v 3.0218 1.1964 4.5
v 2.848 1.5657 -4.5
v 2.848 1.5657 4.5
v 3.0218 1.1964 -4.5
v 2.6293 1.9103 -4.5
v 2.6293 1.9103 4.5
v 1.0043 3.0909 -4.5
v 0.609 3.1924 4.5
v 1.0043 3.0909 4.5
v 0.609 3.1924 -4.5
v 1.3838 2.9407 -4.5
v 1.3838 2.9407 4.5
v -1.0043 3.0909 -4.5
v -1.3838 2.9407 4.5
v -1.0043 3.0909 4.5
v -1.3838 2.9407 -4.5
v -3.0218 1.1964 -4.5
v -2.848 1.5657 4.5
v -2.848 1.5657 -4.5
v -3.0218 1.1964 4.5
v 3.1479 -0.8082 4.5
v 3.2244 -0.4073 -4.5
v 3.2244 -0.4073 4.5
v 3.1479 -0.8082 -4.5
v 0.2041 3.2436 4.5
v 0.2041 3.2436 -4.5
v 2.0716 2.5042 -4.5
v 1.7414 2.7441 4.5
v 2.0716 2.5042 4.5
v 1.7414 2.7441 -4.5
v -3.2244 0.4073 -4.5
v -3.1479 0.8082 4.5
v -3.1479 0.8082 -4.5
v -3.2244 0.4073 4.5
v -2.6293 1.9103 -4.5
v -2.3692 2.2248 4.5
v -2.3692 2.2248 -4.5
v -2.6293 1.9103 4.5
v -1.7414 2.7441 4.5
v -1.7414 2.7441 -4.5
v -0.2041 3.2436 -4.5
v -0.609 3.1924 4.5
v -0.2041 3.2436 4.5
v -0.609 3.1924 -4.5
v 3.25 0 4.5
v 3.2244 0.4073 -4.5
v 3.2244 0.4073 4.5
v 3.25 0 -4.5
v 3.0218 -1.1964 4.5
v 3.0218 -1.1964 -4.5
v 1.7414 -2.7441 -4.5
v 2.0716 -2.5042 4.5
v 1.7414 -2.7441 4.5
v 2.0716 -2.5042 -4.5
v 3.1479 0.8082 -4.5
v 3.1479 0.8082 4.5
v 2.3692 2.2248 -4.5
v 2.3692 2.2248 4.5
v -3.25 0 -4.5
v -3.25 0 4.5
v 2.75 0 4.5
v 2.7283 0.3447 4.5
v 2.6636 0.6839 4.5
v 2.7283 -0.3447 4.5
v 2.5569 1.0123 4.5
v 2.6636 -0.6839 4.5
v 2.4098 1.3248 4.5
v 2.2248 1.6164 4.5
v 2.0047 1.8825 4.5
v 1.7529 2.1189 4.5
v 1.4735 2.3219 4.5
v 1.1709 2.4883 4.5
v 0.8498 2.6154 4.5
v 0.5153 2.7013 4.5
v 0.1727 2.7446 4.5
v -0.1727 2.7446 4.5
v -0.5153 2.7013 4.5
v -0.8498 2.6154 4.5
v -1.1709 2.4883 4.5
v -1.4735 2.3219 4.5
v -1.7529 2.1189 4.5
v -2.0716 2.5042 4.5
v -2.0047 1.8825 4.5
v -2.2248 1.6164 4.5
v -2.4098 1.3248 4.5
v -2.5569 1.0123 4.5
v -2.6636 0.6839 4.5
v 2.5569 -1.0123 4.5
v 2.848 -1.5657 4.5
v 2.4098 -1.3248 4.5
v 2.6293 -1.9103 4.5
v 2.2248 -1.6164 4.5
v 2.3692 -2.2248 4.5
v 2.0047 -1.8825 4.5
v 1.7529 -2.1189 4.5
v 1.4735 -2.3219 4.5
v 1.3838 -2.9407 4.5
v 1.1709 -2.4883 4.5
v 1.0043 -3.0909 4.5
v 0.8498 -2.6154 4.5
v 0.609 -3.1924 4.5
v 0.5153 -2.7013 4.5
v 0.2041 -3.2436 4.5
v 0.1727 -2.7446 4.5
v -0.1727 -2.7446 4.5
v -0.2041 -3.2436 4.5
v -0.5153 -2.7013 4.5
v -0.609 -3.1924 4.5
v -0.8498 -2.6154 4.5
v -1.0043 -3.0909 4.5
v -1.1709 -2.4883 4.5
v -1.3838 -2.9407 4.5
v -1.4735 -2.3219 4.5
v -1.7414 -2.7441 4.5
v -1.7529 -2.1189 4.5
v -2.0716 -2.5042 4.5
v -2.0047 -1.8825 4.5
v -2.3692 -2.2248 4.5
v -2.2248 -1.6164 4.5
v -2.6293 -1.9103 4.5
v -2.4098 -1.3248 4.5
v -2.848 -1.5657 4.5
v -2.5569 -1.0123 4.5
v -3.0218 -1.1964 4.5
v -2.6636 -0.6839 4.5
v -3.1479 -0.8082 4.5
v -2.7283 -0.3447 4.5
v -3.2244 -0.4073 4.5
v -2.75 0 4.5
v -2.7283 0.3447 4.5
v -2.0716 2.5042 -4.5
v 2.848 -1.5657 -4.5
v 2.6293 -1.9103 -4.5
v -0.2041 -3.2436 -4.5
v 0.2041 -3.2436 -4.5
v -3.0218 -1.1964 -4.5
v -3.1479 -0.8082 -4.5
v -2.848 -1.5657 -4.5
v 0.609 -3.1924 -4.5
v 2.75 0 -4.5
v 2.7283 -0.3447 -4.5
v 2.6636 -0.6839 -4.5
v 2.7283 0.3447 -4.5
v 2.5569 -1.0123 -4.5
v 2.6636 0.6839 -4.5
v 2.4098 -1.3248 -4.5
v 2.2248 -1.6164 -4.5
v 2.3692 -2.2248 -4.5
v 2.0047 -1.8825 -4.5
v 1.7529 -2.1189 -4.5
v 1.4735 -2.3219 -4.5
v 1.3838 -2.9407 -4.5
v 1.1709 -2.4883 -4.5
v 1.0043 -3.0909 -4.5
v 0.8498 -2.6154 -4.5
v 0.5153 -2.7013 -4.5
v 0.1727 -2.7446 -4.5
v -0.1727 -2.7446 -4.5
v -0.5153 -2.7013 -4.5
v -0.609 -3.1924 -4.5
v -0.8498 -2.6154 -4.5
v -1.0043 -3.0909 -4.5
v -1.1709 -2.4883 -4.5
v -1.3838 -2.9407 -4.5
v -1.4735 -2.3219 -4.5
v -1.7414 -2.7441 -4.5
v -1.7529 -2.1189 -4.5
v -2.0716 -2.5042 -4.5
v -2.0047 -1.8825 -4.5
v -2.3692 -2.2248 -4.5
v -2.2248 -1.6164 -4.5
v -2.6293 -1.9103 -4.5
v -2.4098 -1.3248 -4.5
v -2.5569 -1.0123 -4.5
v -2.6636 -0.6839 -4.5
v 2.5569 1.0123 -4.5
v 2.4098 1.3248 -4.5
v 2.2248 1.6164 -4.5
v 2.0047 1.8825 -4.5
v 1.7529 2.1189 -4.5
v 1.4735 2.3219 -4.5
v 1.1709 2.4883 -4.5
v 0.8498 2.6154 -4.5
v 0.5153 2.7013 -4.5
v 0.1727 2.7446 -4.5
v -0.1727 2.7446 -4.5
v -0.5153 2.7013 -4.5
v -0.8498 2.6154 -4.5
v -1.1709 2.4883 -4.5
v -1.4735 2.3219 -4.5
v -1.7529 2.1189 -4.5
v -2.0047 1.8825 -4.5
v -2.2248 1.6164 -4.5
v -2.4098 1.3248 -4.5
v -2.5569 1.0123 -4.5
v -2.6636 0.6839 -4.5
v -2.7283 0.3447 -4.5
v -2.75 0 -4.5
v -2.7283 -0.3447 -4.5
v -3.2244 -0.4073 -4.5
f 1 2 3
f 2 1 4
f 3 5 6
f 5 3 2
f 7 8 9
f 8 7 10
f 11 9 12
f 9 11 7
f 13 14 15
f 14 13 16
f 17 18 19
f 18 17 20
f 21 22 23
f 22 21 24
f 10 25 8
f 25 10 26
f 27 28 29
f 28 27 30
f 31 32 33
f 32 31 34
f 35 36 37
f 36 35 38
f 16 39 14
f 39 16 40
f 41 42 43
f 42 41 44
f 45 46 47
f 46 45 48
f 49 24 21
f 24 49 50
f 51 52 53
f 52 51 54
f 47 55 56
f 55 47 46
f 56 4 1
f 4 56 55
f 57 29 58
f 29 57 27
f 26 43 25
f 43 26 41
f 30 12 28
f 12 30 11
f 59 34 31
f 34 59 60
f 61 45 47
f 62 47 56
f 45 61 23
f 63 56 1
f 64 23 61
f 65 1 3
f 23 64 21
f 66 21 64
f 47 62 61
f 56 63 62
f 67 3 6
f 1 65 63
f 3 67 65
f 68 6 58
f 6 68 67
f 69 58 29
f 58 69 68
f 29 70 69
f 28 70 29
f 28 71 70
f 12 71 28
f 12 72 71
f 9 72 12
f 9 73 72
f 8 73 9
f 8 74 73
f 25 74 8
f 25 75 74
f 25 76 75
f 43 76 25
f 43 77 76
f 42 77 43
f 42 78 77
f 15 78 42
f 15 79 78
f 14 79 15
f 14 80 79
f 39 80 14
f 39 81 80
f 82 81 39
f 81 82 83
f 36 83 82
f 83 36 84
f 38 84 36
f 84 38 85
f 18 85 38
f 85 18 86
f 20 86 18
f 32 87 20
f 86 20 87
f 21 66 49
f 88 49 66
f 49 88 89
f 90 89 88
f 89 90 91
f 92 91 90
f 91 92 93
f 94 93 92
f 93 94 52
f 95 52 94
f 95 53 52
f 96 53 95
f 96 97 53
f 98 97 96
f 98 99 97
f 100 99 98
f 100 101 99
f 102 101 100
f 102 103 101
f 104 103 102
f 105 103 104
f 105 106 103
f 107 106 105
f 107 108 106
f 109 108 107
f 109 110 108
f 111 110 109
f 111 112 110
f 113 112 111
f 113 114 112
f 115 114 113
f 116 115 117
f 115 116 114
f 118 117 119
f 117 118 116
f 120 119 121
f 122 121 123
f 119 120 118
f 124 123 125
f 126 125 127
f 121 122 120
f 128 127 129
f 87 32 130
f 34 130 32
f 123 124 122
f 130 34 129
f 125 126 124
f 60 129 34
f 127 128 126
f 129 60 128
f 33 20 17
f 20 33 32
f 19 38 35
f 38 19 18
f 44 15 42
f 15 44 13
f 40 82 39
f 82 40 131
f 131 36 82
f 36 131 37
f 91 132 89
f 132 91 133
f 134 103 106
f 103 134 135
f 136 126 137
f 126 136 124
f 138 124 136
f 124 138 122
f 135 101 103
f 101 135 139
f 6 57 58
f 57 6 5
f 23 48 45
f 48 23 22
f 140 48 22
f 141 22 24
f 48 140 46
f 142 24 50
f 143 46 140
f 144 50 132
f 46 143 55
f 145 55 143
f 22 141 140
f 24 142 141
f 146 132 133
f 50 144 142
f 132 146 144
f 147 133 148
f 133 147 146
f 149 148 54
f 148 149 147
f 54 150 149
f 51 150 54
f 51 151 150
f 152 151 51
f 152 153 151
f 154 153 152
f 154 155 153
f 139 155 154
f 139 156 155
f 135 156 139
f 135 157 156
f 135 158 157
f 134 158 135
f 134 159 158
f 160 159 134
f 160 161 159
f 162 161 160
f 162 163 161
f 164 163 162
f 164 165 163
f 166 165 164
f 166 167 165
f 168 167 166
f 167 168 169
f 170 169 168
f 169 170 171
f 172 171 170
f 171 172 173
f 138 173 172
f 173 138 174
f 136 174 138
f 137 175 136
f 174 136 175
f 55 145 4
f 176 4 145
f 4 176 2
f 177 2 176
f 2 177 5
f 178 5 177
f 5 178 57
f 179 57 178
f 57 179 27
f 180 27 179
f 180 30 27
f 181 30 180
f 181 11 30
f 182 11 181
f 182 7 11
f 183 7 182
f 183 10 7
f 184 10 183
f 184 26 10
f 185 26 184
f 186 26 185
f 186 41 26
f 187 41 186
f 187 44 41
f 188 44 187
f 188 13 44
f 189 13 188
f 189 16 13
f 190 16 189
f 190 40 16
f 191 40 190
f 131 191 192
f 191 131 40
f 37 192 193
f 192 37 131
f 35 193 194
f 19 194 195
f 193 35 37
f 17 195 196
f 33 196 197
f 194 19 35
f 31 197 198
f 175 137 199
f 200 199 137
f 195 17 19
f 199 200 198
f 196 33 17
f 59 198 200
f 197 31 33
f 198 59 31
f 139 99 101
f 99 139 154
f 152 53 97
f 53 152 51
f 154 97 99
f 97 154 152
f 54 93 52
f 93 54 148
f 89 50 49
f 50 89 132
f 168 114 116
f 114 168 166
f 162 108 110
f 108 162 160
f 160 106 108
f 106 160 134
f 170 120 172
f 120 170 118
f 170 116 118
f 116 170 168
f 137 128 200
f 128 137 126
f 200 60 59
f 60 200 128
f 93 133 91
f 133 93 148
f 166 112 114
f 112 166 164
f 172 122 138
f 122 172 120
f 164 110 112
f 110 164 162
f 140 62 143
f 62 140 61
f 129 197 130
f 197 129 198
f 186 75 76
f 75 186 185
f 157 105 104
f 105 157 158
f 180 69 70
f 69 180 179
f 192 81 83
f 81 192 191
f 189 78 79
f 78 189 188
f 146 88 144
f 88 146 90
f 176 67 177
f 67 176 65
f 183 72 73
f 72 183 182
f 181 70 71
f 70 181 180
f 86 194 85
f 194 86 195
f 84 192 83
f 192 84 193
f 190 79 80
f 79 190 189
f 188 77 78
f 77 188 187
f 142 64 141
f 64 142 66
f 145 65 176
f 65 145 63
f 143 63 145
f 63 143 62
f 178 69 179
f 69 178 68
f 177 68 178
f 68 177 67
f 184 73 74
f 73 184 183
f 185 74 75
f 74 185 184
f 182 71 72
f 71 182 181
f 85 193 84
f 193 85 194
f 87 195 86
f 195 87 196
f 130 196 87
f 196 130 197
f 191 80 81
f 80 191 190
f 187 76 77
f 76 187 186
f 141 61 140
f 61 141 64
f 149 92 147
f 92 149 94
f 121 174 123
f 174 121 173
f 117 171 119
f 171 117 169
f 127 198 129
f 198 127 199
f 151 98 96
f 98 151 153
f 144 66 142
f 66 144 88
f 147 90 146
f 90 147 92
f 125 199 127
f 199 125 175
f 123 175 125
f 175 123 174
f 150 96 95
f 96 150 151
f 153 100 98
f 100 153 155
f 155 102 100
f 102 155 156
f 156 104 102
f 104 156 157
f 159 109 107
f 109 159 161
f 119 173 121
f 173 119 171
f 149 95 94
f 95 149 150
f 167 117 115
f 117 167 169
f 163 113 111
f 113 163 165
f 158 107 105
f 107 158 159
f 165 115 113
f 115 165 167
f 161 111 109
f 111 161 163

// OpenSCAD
$fn = 50;


difference() {
	union() {
		translate(v = [0, 0, -4.5000000000]) {
			cylinder(h = 9, r = 3.2500000000);
		}
	}
	union() {
		translate(v = [0, 0, -100.0000000000]) {
			cylinder(h = 200, r = 2.7500000000);
		}
	}
}
